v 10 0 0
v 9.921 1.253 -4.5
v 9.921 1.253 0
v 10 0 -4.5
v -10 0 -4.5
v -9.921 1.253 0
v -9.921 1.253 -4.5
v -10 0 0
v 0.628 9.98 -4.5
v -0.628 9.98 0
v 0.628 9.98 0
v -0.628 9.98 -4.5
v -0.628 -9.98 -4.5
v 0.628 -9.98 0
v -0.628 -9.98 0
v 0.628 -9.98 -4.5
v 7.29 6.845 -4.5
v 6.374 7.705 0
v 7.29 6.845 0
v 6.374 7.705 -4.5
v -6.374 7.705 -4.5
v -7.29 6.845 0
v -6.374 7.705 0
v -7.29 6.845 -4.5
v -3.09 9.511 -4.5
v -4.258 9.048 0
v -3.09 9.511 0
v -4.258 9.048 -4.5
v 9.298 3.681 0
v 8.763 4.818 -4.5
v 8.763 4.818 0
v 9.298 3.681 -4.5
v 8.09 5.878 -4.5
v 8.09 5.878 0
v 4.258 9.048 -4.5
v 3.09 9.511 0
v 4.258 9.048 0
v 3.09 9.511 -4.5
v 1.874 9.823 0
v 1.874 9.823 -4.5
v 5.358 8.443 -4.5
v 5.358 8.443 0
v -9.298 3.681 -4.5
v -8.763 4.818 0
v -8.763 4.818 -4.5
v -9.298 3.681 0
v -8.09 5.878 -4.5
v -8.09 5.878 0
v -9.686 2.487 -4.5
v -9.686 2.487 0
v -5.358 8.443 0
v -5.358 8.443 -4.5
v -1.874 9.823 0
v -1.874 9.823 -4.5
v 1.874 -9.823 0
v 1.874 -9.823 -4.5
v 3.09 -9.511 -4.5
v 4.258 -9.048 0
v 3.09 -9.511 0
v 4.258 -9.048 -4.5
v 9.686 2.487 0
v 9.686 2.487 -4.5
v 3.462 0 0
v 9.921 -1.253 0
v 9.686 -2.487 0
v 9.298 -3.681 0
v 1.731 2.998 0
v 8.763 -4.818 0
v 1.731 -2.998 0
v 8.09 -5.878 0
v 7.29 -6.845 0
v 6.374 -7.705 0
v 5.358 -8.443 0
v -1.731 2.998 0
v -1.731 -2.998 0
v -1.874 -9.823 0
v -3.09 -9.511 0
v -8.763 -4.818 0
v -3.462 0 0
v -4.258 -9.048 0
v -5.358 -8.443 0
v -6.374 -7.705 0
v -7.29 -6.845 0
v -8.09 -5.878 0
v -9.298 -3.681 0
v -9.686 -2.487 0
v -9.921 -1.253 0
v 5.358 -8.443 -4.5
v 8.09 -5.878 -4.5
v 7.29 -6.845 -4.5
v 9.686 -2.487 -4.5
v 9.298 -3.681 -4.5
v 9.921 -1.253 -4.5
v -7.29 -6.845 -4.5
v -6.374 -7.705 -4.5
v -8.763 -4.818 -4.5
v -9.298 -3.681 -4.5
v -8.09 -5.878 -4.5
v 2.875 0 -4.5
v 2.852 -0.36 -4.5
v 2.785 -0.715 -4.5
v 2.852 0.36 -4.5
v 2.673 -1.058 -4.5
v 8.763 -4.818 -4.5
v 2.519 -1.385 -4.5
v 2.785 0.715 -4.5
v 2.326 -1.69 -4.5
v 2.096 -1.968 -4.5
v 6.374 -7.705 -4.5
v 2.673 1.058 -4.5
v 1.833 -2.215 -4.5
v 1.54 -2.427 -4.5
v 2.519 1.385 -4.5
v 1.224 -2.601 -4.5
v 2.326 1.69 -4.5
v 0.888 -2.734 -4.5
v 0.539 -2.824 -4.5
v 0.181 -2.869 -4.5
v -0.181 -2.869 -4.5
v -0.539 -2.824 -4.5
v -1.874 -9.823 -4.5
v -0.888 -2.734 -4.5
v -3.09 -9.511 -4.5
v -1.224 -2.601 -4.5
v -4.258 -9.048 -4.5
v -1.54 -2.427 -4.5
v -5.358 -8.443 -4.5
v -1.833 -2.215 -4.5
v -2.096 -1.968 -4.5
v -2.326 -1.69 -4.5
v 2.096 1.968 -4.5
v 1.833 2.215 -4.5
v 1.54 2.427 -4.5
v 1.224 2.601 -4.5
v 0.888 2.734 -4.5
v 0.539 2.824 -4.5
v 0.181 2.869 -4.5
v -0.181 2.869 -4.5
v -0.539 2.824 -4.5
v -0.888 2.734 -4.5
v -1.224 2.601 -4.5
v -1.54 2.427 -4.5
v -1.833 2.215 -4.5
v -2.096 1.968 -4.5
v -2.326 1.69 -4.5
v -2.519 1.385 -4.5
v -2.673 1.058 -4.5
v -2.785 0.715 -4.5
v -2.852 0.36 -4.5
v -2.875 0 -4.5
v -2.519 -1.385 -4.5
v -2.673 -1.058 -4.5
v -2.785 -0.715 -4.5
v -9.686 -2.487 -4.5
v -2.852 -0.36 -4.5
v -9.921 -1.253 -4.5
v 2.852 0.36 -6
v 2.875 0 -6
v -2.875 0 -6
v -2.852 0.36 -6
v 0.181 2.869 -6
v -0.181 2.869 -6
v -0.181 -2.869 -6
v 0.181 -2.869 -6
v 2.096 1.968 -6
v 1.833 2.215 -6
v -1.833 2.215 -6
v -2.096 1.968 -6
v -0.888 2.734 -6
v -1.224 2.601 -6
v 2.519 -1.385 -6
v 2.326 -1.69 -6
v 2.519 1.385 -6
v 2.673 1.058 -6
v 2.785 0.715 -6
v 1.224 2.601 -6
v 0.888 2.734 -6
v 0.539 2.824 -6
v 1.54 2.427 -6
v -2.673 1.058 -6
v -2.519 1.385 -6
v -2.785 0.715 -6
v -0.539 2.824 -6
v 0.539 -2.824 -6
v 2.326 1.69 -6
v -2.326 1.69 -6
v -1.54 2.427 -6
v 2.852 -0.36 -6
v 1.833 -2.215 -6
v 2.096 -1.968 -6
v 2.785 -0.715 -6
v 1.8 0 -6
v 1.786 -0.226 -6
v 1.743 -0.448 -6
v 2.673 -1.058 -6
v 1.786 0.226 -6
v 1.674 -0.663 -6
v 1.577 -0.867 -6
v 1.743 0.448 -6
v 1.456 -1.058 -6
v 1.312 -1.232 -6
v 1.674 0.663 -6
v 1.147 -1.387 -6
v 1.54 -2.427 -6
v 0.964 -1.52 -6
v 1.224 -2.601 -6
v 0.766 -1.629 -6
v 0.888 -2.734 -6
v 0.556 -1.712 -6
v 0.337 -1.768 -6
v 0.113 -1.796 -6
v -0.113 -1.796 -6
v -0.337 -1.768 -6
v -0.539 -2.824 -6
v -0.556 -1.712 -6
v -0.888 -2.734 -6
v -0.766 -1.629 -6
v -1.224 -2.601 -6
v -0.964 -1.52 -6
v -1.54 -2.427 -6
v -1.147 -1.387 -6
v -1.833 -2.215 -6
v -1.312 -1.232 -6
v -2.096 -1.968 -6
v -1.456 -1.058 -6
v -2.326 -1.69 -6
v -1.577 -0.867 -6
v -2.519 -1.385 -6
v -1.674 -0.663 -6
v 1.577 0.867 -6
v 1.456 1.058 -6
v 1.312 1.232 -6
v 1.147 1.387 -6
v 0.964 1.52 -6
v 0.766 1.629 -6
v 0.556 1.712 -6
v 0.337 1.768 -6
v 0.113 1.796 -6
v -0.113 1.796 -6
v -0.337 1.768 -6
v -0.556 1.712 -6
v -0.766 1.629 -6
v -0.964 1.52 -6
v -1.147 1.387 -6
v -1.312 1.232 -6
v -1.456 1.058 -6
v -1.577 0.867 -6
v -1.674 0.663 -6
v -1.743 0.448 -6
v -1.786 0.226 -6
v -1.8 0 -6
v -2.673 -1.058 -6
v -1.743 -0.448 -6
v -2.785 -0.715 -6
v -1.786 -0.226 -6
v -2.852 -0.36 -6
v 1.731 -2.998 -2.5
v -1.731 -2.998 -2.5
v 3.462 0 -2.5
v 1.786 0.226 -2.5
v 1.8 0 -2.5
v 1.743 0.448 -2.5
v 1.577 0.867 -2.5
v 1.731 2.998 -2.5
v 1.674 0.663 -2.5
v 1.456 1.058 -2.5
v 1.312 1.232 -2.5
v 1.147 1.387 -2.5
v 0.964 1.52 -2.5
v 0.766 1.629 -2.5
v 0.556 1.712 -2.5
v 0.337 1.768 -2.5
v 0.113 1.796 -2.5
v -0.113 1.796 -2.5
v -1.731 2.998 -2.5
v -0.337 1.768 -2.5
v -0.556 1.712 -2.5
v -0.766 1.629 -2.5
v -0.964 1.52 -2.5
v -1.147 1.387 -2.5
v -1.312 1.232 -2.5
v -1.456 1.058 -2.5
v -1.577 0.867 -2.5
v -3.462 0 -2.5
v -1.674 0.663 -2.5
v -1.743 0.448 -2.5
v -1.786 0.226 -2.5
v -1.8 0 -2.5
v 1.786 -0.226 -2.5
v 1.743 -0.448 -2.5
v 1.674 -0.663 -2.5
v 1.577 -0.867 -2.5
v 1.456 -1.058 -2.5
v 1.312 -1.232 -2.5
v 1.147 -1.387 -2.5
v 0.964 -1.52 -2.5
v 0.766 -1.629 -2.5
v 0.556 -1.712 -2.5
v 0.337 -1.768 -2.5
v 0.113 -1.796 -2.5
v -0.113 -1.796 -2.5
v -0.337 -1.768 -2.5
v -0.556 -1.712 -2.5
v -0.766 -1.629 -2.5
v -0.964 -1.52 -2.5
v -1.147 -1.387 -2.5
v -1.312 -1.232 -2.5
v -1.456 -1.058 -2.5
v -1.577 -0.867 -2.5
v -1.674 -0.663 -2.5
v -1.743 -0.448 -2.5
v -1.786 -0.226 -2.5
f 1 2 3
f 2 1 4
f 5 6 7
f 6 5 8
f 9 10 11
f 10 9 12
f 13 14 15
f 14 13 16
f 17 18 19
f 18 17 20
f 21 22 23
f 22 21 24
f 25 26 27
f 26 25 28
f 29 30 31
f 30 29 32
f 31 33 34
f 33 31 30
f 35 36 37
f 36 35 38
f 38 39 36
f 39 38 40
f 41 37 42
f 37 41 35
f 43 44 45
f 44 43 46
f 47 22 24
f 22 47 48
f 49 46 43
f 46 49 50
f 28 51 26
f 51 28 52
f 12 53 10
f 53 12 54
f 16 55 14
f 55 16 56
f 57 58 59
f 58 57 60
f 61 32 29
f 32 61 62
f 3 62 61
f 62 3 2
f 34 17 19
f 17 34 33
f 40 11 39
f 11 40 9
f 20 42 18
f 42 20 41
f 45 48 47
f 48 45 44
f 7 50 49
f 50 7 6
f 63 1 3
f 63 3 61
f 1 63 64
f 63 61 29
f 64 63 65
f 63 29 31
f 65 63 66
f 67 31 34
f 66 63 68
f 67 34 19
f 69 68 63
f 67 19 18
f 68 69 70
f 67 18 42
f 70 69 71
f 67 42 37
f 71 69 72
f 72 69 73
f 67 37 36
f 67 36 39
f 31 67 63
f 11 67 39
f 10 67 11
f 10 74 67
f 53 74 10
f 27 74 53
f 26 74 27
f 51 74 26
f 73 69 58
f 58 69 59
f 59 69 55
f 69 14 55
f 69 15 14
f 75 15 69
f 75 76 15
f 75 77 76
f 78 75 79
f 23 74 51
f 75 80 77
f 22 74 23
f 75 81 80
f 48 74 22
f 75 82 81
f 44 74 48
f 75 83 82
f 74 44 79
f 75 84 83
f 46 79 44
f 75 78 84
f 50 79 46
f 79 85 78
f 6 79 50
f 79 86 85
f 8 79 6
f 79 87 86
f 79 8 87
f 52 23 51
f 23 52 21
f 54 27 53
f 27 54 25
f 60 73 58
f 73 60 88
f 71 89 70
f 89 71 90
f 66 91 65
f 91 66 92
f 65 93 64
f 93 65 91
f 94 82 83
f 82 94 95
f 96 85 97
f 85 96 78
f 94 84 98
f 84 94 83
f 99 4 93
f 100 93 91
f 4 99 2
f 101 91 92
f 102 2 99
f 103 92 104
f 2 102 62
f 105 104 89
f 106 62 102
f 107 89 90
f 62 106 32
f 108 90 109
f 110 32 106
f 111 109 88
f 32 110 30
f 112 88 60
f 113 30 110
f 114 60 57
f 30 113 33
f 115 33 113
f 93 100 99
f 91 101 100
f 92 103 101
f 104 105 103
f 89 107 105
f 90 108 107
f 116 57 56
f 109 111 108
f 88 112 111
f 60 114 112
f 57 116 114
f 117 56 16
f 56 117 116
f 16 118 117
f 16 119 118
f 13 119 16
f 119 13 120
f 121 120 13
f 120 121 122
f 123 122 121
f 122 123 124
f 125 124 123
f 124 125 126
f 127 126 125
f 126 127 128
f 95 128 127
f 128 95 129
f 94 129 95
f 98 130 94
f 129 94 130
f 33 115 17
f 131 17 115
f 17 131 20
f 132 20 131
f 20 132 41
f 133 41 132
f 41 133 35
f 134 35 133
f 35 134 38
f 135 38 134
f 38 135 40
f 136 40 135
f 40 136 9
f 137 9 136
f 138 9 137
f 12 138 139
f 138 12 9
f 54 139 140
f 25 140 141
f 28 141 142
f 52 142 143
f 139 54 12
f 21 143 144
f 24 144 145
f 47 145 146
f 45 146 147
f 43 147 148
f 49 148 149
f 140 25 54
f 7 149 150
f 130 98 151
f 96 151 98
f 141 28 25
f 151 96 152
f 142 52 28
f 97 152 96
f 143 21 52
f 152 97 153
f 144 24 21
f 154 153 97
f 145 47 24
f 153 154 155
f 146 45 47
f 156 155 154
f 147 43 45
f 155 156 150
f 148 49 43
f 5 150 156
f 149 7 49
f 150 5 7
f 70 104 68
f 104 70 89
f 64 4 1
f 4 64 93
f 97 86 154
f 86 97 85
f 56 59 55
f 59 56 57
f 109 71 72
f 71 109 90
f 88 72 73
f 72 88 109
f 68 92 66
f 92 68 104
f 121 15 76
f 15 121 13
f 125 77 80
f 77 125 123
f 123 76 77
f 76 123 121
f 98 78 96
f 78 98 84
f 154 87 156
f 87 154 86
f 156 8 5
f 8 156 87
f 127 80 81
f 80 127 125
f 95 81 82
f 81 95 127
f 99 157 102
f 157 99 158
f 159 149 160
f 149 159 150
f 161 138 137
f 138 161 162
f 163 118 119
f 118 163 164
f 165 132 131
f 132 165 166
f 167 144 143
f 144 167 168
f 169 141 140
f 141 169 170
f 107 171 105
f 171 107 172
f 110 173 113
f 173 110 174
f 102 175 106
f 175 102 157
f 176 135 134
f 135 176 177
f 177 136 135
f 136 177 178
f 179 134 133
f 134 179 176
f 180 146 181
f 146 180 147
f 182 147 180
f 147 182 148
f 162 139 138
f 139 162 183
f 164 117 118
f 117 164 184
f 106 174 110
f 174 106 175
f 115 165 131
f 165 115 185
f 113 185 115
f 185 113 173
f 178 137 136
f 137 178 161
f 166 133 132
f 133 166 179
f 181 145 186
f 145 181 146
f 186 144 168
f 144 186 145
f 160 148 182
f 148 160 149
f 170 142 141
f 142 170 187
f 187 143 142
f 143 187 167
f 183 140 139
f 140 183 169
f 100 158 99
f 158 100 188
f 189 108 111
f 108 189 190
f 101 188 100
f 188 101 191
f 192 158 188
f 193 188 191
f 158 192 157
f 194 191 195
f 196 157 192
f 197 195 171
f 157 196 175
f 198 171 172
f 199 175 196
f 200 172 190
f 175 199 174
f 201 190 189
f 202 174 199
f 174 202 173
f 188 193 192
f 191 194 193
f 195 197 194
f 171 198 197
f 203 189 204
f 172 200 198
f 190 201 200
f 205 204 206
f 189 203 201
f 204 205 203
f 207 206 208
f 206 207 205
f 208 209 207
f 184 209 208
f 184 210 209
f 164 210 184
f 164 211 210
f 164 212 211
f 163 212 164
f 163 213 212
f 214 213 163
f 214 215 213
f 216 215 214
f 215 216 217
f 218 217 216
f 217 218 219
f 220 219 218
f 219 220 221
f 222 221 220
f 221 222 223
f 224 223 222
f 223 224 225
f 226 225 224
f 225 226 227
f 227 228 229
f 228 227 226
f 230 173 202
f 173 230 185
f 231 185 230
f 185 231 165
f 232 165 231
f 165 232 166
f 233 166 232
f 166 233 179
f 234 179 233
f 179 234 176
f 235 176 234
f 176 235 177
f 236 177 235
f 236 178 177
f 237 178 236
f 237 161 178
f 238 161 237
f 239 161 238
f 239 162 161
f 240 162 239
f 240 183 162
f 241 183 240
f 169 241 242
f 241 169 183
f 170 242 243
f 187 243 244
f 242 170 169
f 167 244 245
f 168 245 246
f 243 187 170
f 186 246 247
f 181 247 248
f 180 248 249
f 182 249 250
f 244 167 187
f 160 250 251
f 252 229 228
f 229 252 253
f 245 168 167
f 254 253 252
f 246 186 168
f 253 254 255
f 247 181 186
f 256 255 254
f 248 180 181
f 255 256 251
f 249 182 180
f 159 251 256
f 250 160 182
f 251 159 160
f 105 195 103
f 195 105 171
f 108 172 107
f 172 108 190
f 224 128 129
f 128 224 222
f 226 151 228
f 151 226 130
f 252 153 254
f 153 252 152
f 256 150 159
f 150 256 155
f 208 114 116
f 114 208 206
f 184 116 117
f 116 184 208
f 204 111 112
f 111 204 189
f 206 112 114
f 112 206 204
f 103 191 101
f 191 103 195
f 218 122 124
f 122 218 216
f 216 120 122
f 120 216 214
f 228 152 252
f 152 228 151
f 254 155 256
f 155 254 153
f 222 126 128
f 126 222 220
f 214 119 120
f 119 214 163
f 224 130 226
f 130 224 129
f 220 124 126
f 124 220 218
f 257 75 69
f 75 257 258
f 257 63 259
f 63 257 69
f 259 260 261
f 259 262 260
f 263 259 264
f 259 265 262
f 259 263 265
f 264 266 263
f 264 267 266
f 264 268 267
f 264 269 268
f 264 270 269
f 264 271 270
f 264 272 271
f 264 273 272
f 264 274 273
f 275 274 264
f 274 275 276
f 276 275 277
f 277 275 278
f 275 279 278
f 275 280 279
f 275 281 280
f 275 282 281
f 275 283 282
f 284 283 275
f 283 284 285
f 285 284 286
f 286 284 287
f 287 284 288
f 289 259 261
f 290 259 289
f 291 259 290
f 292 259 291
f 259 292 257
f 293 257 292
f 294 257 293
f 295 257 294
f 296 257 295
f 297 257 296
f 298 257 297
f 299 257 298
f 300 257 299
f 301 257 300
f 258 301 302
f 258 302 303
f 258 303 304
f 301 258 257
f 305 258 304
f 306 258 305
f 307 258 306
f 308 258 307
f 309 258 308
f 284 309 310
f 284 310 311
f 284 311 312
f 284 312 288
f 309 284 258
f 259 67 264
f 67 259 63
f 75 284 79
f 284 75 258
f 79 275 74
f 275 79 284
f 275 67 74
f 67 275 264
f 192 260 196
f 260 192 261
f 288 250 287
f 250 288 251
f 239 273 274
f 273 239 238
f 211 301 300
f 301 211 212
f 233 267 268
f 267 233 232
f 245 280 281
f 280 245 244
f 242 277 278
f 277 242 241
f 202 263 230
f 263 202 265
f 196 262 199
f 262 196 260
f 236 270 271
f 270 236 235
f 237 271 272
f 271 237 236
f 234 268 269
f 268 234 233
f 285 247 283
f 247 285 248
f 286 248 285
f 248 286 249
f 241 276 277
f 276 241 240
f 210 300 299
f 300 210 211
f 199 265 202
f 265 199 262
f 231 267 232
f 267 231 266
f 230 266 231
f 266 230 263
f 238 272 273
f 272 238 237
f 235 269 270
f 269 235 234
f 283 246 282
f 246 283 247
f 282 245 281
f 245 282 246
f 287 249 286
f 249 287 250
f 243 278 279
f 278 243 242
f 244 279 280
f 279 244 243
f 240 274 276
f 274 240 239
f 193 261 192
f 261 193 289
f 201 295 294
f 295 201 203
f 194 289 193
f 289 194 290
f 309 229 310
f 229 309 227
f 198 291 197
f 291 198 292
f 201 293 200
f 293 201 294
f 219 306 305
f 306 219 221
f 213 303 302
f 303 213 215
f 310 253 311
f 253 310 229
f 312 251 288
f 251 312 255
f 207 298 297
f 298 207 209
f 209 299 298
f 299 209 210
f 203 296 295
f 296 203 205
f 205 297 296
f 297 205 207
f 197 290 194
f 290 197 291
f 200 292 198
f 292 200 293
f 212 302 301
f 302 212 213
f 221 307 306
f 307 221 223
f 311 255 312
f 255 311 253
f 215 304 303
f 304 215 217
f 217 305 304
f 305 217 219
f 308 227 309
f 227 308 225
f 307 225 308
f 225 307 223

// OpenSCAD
$fn = 50;


difference() {
	union() {
		translate(v = [0, 0, -4.5000000000]) {
			cylinder(h = 4.5000000000, r = 10.0000000000);
		}
		#translate(v = [0, 0, -6.0000000000]) {
			cylinder(h = 6, r = 2.8750000000);
		}
	}
	union() {
		translate(v = [0, 0, 0]) {
			rotate(a = [0, 0, 0]) {
				difference() {
					union() {
						translate(v = [0, 0, -2.5000000000]) {
							linear_extrude(height = 2.5000000000) {
								polygon(points = [[3.4620000000, 0.0000000000], [1.7310000000, 2.9981799479], [-1.7310000000, 2.9981799479], [-3.4620000000, 0.0000000000], [-1.7310000000, -2.9981799479], [1.7310000000, -2.9981799479]]);
							}
						}
					}
					union();
				}
			}
		}
		#translate(v = [0, 0, -100.0000000000]) {
			cylinder(h = 200, r = 1.8000000000);
		}
	}
}
